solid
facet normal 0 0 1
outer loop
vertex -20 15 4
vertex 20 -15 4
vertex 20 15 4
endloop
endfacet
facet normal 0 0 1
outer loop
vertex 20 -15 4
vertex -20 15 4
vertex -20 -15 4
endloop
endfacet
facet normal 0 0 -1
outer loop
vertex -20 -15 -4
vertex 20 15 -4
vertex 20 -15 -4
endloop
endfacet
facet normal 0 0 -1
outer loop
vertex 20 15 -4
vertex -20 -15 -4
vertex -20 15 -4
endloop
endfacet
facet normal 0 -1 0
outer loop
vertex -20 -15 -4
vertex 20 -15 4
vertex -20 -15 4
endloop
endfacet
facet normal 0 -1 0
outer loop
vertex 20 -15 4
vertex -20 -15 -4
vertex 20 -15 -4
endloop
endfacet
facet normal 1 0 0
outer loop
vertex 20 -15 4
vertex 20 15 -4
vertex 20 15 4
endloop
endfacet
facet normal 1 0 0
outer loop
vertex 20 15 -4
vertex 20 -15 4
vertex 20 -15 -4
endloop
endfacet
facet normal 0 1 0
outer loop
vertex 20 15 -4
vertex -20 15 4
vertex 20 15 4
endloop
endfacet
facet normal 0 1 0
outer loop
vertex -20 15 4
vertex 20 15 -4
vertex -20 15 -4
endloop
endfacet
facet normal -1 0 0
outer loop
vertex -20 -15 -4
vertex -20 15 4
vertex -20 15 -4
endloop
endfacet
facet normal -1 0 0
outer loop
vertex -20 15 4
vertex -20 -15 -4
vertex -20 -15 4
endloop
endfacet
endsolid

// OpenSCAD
// Rectangular Solid Box with dimensions 40mm x 30mm x 8mm
module solid_box() {
    cube([40, 30, 8], center = true);
}

// Render the box centered at origin
solid_box();
